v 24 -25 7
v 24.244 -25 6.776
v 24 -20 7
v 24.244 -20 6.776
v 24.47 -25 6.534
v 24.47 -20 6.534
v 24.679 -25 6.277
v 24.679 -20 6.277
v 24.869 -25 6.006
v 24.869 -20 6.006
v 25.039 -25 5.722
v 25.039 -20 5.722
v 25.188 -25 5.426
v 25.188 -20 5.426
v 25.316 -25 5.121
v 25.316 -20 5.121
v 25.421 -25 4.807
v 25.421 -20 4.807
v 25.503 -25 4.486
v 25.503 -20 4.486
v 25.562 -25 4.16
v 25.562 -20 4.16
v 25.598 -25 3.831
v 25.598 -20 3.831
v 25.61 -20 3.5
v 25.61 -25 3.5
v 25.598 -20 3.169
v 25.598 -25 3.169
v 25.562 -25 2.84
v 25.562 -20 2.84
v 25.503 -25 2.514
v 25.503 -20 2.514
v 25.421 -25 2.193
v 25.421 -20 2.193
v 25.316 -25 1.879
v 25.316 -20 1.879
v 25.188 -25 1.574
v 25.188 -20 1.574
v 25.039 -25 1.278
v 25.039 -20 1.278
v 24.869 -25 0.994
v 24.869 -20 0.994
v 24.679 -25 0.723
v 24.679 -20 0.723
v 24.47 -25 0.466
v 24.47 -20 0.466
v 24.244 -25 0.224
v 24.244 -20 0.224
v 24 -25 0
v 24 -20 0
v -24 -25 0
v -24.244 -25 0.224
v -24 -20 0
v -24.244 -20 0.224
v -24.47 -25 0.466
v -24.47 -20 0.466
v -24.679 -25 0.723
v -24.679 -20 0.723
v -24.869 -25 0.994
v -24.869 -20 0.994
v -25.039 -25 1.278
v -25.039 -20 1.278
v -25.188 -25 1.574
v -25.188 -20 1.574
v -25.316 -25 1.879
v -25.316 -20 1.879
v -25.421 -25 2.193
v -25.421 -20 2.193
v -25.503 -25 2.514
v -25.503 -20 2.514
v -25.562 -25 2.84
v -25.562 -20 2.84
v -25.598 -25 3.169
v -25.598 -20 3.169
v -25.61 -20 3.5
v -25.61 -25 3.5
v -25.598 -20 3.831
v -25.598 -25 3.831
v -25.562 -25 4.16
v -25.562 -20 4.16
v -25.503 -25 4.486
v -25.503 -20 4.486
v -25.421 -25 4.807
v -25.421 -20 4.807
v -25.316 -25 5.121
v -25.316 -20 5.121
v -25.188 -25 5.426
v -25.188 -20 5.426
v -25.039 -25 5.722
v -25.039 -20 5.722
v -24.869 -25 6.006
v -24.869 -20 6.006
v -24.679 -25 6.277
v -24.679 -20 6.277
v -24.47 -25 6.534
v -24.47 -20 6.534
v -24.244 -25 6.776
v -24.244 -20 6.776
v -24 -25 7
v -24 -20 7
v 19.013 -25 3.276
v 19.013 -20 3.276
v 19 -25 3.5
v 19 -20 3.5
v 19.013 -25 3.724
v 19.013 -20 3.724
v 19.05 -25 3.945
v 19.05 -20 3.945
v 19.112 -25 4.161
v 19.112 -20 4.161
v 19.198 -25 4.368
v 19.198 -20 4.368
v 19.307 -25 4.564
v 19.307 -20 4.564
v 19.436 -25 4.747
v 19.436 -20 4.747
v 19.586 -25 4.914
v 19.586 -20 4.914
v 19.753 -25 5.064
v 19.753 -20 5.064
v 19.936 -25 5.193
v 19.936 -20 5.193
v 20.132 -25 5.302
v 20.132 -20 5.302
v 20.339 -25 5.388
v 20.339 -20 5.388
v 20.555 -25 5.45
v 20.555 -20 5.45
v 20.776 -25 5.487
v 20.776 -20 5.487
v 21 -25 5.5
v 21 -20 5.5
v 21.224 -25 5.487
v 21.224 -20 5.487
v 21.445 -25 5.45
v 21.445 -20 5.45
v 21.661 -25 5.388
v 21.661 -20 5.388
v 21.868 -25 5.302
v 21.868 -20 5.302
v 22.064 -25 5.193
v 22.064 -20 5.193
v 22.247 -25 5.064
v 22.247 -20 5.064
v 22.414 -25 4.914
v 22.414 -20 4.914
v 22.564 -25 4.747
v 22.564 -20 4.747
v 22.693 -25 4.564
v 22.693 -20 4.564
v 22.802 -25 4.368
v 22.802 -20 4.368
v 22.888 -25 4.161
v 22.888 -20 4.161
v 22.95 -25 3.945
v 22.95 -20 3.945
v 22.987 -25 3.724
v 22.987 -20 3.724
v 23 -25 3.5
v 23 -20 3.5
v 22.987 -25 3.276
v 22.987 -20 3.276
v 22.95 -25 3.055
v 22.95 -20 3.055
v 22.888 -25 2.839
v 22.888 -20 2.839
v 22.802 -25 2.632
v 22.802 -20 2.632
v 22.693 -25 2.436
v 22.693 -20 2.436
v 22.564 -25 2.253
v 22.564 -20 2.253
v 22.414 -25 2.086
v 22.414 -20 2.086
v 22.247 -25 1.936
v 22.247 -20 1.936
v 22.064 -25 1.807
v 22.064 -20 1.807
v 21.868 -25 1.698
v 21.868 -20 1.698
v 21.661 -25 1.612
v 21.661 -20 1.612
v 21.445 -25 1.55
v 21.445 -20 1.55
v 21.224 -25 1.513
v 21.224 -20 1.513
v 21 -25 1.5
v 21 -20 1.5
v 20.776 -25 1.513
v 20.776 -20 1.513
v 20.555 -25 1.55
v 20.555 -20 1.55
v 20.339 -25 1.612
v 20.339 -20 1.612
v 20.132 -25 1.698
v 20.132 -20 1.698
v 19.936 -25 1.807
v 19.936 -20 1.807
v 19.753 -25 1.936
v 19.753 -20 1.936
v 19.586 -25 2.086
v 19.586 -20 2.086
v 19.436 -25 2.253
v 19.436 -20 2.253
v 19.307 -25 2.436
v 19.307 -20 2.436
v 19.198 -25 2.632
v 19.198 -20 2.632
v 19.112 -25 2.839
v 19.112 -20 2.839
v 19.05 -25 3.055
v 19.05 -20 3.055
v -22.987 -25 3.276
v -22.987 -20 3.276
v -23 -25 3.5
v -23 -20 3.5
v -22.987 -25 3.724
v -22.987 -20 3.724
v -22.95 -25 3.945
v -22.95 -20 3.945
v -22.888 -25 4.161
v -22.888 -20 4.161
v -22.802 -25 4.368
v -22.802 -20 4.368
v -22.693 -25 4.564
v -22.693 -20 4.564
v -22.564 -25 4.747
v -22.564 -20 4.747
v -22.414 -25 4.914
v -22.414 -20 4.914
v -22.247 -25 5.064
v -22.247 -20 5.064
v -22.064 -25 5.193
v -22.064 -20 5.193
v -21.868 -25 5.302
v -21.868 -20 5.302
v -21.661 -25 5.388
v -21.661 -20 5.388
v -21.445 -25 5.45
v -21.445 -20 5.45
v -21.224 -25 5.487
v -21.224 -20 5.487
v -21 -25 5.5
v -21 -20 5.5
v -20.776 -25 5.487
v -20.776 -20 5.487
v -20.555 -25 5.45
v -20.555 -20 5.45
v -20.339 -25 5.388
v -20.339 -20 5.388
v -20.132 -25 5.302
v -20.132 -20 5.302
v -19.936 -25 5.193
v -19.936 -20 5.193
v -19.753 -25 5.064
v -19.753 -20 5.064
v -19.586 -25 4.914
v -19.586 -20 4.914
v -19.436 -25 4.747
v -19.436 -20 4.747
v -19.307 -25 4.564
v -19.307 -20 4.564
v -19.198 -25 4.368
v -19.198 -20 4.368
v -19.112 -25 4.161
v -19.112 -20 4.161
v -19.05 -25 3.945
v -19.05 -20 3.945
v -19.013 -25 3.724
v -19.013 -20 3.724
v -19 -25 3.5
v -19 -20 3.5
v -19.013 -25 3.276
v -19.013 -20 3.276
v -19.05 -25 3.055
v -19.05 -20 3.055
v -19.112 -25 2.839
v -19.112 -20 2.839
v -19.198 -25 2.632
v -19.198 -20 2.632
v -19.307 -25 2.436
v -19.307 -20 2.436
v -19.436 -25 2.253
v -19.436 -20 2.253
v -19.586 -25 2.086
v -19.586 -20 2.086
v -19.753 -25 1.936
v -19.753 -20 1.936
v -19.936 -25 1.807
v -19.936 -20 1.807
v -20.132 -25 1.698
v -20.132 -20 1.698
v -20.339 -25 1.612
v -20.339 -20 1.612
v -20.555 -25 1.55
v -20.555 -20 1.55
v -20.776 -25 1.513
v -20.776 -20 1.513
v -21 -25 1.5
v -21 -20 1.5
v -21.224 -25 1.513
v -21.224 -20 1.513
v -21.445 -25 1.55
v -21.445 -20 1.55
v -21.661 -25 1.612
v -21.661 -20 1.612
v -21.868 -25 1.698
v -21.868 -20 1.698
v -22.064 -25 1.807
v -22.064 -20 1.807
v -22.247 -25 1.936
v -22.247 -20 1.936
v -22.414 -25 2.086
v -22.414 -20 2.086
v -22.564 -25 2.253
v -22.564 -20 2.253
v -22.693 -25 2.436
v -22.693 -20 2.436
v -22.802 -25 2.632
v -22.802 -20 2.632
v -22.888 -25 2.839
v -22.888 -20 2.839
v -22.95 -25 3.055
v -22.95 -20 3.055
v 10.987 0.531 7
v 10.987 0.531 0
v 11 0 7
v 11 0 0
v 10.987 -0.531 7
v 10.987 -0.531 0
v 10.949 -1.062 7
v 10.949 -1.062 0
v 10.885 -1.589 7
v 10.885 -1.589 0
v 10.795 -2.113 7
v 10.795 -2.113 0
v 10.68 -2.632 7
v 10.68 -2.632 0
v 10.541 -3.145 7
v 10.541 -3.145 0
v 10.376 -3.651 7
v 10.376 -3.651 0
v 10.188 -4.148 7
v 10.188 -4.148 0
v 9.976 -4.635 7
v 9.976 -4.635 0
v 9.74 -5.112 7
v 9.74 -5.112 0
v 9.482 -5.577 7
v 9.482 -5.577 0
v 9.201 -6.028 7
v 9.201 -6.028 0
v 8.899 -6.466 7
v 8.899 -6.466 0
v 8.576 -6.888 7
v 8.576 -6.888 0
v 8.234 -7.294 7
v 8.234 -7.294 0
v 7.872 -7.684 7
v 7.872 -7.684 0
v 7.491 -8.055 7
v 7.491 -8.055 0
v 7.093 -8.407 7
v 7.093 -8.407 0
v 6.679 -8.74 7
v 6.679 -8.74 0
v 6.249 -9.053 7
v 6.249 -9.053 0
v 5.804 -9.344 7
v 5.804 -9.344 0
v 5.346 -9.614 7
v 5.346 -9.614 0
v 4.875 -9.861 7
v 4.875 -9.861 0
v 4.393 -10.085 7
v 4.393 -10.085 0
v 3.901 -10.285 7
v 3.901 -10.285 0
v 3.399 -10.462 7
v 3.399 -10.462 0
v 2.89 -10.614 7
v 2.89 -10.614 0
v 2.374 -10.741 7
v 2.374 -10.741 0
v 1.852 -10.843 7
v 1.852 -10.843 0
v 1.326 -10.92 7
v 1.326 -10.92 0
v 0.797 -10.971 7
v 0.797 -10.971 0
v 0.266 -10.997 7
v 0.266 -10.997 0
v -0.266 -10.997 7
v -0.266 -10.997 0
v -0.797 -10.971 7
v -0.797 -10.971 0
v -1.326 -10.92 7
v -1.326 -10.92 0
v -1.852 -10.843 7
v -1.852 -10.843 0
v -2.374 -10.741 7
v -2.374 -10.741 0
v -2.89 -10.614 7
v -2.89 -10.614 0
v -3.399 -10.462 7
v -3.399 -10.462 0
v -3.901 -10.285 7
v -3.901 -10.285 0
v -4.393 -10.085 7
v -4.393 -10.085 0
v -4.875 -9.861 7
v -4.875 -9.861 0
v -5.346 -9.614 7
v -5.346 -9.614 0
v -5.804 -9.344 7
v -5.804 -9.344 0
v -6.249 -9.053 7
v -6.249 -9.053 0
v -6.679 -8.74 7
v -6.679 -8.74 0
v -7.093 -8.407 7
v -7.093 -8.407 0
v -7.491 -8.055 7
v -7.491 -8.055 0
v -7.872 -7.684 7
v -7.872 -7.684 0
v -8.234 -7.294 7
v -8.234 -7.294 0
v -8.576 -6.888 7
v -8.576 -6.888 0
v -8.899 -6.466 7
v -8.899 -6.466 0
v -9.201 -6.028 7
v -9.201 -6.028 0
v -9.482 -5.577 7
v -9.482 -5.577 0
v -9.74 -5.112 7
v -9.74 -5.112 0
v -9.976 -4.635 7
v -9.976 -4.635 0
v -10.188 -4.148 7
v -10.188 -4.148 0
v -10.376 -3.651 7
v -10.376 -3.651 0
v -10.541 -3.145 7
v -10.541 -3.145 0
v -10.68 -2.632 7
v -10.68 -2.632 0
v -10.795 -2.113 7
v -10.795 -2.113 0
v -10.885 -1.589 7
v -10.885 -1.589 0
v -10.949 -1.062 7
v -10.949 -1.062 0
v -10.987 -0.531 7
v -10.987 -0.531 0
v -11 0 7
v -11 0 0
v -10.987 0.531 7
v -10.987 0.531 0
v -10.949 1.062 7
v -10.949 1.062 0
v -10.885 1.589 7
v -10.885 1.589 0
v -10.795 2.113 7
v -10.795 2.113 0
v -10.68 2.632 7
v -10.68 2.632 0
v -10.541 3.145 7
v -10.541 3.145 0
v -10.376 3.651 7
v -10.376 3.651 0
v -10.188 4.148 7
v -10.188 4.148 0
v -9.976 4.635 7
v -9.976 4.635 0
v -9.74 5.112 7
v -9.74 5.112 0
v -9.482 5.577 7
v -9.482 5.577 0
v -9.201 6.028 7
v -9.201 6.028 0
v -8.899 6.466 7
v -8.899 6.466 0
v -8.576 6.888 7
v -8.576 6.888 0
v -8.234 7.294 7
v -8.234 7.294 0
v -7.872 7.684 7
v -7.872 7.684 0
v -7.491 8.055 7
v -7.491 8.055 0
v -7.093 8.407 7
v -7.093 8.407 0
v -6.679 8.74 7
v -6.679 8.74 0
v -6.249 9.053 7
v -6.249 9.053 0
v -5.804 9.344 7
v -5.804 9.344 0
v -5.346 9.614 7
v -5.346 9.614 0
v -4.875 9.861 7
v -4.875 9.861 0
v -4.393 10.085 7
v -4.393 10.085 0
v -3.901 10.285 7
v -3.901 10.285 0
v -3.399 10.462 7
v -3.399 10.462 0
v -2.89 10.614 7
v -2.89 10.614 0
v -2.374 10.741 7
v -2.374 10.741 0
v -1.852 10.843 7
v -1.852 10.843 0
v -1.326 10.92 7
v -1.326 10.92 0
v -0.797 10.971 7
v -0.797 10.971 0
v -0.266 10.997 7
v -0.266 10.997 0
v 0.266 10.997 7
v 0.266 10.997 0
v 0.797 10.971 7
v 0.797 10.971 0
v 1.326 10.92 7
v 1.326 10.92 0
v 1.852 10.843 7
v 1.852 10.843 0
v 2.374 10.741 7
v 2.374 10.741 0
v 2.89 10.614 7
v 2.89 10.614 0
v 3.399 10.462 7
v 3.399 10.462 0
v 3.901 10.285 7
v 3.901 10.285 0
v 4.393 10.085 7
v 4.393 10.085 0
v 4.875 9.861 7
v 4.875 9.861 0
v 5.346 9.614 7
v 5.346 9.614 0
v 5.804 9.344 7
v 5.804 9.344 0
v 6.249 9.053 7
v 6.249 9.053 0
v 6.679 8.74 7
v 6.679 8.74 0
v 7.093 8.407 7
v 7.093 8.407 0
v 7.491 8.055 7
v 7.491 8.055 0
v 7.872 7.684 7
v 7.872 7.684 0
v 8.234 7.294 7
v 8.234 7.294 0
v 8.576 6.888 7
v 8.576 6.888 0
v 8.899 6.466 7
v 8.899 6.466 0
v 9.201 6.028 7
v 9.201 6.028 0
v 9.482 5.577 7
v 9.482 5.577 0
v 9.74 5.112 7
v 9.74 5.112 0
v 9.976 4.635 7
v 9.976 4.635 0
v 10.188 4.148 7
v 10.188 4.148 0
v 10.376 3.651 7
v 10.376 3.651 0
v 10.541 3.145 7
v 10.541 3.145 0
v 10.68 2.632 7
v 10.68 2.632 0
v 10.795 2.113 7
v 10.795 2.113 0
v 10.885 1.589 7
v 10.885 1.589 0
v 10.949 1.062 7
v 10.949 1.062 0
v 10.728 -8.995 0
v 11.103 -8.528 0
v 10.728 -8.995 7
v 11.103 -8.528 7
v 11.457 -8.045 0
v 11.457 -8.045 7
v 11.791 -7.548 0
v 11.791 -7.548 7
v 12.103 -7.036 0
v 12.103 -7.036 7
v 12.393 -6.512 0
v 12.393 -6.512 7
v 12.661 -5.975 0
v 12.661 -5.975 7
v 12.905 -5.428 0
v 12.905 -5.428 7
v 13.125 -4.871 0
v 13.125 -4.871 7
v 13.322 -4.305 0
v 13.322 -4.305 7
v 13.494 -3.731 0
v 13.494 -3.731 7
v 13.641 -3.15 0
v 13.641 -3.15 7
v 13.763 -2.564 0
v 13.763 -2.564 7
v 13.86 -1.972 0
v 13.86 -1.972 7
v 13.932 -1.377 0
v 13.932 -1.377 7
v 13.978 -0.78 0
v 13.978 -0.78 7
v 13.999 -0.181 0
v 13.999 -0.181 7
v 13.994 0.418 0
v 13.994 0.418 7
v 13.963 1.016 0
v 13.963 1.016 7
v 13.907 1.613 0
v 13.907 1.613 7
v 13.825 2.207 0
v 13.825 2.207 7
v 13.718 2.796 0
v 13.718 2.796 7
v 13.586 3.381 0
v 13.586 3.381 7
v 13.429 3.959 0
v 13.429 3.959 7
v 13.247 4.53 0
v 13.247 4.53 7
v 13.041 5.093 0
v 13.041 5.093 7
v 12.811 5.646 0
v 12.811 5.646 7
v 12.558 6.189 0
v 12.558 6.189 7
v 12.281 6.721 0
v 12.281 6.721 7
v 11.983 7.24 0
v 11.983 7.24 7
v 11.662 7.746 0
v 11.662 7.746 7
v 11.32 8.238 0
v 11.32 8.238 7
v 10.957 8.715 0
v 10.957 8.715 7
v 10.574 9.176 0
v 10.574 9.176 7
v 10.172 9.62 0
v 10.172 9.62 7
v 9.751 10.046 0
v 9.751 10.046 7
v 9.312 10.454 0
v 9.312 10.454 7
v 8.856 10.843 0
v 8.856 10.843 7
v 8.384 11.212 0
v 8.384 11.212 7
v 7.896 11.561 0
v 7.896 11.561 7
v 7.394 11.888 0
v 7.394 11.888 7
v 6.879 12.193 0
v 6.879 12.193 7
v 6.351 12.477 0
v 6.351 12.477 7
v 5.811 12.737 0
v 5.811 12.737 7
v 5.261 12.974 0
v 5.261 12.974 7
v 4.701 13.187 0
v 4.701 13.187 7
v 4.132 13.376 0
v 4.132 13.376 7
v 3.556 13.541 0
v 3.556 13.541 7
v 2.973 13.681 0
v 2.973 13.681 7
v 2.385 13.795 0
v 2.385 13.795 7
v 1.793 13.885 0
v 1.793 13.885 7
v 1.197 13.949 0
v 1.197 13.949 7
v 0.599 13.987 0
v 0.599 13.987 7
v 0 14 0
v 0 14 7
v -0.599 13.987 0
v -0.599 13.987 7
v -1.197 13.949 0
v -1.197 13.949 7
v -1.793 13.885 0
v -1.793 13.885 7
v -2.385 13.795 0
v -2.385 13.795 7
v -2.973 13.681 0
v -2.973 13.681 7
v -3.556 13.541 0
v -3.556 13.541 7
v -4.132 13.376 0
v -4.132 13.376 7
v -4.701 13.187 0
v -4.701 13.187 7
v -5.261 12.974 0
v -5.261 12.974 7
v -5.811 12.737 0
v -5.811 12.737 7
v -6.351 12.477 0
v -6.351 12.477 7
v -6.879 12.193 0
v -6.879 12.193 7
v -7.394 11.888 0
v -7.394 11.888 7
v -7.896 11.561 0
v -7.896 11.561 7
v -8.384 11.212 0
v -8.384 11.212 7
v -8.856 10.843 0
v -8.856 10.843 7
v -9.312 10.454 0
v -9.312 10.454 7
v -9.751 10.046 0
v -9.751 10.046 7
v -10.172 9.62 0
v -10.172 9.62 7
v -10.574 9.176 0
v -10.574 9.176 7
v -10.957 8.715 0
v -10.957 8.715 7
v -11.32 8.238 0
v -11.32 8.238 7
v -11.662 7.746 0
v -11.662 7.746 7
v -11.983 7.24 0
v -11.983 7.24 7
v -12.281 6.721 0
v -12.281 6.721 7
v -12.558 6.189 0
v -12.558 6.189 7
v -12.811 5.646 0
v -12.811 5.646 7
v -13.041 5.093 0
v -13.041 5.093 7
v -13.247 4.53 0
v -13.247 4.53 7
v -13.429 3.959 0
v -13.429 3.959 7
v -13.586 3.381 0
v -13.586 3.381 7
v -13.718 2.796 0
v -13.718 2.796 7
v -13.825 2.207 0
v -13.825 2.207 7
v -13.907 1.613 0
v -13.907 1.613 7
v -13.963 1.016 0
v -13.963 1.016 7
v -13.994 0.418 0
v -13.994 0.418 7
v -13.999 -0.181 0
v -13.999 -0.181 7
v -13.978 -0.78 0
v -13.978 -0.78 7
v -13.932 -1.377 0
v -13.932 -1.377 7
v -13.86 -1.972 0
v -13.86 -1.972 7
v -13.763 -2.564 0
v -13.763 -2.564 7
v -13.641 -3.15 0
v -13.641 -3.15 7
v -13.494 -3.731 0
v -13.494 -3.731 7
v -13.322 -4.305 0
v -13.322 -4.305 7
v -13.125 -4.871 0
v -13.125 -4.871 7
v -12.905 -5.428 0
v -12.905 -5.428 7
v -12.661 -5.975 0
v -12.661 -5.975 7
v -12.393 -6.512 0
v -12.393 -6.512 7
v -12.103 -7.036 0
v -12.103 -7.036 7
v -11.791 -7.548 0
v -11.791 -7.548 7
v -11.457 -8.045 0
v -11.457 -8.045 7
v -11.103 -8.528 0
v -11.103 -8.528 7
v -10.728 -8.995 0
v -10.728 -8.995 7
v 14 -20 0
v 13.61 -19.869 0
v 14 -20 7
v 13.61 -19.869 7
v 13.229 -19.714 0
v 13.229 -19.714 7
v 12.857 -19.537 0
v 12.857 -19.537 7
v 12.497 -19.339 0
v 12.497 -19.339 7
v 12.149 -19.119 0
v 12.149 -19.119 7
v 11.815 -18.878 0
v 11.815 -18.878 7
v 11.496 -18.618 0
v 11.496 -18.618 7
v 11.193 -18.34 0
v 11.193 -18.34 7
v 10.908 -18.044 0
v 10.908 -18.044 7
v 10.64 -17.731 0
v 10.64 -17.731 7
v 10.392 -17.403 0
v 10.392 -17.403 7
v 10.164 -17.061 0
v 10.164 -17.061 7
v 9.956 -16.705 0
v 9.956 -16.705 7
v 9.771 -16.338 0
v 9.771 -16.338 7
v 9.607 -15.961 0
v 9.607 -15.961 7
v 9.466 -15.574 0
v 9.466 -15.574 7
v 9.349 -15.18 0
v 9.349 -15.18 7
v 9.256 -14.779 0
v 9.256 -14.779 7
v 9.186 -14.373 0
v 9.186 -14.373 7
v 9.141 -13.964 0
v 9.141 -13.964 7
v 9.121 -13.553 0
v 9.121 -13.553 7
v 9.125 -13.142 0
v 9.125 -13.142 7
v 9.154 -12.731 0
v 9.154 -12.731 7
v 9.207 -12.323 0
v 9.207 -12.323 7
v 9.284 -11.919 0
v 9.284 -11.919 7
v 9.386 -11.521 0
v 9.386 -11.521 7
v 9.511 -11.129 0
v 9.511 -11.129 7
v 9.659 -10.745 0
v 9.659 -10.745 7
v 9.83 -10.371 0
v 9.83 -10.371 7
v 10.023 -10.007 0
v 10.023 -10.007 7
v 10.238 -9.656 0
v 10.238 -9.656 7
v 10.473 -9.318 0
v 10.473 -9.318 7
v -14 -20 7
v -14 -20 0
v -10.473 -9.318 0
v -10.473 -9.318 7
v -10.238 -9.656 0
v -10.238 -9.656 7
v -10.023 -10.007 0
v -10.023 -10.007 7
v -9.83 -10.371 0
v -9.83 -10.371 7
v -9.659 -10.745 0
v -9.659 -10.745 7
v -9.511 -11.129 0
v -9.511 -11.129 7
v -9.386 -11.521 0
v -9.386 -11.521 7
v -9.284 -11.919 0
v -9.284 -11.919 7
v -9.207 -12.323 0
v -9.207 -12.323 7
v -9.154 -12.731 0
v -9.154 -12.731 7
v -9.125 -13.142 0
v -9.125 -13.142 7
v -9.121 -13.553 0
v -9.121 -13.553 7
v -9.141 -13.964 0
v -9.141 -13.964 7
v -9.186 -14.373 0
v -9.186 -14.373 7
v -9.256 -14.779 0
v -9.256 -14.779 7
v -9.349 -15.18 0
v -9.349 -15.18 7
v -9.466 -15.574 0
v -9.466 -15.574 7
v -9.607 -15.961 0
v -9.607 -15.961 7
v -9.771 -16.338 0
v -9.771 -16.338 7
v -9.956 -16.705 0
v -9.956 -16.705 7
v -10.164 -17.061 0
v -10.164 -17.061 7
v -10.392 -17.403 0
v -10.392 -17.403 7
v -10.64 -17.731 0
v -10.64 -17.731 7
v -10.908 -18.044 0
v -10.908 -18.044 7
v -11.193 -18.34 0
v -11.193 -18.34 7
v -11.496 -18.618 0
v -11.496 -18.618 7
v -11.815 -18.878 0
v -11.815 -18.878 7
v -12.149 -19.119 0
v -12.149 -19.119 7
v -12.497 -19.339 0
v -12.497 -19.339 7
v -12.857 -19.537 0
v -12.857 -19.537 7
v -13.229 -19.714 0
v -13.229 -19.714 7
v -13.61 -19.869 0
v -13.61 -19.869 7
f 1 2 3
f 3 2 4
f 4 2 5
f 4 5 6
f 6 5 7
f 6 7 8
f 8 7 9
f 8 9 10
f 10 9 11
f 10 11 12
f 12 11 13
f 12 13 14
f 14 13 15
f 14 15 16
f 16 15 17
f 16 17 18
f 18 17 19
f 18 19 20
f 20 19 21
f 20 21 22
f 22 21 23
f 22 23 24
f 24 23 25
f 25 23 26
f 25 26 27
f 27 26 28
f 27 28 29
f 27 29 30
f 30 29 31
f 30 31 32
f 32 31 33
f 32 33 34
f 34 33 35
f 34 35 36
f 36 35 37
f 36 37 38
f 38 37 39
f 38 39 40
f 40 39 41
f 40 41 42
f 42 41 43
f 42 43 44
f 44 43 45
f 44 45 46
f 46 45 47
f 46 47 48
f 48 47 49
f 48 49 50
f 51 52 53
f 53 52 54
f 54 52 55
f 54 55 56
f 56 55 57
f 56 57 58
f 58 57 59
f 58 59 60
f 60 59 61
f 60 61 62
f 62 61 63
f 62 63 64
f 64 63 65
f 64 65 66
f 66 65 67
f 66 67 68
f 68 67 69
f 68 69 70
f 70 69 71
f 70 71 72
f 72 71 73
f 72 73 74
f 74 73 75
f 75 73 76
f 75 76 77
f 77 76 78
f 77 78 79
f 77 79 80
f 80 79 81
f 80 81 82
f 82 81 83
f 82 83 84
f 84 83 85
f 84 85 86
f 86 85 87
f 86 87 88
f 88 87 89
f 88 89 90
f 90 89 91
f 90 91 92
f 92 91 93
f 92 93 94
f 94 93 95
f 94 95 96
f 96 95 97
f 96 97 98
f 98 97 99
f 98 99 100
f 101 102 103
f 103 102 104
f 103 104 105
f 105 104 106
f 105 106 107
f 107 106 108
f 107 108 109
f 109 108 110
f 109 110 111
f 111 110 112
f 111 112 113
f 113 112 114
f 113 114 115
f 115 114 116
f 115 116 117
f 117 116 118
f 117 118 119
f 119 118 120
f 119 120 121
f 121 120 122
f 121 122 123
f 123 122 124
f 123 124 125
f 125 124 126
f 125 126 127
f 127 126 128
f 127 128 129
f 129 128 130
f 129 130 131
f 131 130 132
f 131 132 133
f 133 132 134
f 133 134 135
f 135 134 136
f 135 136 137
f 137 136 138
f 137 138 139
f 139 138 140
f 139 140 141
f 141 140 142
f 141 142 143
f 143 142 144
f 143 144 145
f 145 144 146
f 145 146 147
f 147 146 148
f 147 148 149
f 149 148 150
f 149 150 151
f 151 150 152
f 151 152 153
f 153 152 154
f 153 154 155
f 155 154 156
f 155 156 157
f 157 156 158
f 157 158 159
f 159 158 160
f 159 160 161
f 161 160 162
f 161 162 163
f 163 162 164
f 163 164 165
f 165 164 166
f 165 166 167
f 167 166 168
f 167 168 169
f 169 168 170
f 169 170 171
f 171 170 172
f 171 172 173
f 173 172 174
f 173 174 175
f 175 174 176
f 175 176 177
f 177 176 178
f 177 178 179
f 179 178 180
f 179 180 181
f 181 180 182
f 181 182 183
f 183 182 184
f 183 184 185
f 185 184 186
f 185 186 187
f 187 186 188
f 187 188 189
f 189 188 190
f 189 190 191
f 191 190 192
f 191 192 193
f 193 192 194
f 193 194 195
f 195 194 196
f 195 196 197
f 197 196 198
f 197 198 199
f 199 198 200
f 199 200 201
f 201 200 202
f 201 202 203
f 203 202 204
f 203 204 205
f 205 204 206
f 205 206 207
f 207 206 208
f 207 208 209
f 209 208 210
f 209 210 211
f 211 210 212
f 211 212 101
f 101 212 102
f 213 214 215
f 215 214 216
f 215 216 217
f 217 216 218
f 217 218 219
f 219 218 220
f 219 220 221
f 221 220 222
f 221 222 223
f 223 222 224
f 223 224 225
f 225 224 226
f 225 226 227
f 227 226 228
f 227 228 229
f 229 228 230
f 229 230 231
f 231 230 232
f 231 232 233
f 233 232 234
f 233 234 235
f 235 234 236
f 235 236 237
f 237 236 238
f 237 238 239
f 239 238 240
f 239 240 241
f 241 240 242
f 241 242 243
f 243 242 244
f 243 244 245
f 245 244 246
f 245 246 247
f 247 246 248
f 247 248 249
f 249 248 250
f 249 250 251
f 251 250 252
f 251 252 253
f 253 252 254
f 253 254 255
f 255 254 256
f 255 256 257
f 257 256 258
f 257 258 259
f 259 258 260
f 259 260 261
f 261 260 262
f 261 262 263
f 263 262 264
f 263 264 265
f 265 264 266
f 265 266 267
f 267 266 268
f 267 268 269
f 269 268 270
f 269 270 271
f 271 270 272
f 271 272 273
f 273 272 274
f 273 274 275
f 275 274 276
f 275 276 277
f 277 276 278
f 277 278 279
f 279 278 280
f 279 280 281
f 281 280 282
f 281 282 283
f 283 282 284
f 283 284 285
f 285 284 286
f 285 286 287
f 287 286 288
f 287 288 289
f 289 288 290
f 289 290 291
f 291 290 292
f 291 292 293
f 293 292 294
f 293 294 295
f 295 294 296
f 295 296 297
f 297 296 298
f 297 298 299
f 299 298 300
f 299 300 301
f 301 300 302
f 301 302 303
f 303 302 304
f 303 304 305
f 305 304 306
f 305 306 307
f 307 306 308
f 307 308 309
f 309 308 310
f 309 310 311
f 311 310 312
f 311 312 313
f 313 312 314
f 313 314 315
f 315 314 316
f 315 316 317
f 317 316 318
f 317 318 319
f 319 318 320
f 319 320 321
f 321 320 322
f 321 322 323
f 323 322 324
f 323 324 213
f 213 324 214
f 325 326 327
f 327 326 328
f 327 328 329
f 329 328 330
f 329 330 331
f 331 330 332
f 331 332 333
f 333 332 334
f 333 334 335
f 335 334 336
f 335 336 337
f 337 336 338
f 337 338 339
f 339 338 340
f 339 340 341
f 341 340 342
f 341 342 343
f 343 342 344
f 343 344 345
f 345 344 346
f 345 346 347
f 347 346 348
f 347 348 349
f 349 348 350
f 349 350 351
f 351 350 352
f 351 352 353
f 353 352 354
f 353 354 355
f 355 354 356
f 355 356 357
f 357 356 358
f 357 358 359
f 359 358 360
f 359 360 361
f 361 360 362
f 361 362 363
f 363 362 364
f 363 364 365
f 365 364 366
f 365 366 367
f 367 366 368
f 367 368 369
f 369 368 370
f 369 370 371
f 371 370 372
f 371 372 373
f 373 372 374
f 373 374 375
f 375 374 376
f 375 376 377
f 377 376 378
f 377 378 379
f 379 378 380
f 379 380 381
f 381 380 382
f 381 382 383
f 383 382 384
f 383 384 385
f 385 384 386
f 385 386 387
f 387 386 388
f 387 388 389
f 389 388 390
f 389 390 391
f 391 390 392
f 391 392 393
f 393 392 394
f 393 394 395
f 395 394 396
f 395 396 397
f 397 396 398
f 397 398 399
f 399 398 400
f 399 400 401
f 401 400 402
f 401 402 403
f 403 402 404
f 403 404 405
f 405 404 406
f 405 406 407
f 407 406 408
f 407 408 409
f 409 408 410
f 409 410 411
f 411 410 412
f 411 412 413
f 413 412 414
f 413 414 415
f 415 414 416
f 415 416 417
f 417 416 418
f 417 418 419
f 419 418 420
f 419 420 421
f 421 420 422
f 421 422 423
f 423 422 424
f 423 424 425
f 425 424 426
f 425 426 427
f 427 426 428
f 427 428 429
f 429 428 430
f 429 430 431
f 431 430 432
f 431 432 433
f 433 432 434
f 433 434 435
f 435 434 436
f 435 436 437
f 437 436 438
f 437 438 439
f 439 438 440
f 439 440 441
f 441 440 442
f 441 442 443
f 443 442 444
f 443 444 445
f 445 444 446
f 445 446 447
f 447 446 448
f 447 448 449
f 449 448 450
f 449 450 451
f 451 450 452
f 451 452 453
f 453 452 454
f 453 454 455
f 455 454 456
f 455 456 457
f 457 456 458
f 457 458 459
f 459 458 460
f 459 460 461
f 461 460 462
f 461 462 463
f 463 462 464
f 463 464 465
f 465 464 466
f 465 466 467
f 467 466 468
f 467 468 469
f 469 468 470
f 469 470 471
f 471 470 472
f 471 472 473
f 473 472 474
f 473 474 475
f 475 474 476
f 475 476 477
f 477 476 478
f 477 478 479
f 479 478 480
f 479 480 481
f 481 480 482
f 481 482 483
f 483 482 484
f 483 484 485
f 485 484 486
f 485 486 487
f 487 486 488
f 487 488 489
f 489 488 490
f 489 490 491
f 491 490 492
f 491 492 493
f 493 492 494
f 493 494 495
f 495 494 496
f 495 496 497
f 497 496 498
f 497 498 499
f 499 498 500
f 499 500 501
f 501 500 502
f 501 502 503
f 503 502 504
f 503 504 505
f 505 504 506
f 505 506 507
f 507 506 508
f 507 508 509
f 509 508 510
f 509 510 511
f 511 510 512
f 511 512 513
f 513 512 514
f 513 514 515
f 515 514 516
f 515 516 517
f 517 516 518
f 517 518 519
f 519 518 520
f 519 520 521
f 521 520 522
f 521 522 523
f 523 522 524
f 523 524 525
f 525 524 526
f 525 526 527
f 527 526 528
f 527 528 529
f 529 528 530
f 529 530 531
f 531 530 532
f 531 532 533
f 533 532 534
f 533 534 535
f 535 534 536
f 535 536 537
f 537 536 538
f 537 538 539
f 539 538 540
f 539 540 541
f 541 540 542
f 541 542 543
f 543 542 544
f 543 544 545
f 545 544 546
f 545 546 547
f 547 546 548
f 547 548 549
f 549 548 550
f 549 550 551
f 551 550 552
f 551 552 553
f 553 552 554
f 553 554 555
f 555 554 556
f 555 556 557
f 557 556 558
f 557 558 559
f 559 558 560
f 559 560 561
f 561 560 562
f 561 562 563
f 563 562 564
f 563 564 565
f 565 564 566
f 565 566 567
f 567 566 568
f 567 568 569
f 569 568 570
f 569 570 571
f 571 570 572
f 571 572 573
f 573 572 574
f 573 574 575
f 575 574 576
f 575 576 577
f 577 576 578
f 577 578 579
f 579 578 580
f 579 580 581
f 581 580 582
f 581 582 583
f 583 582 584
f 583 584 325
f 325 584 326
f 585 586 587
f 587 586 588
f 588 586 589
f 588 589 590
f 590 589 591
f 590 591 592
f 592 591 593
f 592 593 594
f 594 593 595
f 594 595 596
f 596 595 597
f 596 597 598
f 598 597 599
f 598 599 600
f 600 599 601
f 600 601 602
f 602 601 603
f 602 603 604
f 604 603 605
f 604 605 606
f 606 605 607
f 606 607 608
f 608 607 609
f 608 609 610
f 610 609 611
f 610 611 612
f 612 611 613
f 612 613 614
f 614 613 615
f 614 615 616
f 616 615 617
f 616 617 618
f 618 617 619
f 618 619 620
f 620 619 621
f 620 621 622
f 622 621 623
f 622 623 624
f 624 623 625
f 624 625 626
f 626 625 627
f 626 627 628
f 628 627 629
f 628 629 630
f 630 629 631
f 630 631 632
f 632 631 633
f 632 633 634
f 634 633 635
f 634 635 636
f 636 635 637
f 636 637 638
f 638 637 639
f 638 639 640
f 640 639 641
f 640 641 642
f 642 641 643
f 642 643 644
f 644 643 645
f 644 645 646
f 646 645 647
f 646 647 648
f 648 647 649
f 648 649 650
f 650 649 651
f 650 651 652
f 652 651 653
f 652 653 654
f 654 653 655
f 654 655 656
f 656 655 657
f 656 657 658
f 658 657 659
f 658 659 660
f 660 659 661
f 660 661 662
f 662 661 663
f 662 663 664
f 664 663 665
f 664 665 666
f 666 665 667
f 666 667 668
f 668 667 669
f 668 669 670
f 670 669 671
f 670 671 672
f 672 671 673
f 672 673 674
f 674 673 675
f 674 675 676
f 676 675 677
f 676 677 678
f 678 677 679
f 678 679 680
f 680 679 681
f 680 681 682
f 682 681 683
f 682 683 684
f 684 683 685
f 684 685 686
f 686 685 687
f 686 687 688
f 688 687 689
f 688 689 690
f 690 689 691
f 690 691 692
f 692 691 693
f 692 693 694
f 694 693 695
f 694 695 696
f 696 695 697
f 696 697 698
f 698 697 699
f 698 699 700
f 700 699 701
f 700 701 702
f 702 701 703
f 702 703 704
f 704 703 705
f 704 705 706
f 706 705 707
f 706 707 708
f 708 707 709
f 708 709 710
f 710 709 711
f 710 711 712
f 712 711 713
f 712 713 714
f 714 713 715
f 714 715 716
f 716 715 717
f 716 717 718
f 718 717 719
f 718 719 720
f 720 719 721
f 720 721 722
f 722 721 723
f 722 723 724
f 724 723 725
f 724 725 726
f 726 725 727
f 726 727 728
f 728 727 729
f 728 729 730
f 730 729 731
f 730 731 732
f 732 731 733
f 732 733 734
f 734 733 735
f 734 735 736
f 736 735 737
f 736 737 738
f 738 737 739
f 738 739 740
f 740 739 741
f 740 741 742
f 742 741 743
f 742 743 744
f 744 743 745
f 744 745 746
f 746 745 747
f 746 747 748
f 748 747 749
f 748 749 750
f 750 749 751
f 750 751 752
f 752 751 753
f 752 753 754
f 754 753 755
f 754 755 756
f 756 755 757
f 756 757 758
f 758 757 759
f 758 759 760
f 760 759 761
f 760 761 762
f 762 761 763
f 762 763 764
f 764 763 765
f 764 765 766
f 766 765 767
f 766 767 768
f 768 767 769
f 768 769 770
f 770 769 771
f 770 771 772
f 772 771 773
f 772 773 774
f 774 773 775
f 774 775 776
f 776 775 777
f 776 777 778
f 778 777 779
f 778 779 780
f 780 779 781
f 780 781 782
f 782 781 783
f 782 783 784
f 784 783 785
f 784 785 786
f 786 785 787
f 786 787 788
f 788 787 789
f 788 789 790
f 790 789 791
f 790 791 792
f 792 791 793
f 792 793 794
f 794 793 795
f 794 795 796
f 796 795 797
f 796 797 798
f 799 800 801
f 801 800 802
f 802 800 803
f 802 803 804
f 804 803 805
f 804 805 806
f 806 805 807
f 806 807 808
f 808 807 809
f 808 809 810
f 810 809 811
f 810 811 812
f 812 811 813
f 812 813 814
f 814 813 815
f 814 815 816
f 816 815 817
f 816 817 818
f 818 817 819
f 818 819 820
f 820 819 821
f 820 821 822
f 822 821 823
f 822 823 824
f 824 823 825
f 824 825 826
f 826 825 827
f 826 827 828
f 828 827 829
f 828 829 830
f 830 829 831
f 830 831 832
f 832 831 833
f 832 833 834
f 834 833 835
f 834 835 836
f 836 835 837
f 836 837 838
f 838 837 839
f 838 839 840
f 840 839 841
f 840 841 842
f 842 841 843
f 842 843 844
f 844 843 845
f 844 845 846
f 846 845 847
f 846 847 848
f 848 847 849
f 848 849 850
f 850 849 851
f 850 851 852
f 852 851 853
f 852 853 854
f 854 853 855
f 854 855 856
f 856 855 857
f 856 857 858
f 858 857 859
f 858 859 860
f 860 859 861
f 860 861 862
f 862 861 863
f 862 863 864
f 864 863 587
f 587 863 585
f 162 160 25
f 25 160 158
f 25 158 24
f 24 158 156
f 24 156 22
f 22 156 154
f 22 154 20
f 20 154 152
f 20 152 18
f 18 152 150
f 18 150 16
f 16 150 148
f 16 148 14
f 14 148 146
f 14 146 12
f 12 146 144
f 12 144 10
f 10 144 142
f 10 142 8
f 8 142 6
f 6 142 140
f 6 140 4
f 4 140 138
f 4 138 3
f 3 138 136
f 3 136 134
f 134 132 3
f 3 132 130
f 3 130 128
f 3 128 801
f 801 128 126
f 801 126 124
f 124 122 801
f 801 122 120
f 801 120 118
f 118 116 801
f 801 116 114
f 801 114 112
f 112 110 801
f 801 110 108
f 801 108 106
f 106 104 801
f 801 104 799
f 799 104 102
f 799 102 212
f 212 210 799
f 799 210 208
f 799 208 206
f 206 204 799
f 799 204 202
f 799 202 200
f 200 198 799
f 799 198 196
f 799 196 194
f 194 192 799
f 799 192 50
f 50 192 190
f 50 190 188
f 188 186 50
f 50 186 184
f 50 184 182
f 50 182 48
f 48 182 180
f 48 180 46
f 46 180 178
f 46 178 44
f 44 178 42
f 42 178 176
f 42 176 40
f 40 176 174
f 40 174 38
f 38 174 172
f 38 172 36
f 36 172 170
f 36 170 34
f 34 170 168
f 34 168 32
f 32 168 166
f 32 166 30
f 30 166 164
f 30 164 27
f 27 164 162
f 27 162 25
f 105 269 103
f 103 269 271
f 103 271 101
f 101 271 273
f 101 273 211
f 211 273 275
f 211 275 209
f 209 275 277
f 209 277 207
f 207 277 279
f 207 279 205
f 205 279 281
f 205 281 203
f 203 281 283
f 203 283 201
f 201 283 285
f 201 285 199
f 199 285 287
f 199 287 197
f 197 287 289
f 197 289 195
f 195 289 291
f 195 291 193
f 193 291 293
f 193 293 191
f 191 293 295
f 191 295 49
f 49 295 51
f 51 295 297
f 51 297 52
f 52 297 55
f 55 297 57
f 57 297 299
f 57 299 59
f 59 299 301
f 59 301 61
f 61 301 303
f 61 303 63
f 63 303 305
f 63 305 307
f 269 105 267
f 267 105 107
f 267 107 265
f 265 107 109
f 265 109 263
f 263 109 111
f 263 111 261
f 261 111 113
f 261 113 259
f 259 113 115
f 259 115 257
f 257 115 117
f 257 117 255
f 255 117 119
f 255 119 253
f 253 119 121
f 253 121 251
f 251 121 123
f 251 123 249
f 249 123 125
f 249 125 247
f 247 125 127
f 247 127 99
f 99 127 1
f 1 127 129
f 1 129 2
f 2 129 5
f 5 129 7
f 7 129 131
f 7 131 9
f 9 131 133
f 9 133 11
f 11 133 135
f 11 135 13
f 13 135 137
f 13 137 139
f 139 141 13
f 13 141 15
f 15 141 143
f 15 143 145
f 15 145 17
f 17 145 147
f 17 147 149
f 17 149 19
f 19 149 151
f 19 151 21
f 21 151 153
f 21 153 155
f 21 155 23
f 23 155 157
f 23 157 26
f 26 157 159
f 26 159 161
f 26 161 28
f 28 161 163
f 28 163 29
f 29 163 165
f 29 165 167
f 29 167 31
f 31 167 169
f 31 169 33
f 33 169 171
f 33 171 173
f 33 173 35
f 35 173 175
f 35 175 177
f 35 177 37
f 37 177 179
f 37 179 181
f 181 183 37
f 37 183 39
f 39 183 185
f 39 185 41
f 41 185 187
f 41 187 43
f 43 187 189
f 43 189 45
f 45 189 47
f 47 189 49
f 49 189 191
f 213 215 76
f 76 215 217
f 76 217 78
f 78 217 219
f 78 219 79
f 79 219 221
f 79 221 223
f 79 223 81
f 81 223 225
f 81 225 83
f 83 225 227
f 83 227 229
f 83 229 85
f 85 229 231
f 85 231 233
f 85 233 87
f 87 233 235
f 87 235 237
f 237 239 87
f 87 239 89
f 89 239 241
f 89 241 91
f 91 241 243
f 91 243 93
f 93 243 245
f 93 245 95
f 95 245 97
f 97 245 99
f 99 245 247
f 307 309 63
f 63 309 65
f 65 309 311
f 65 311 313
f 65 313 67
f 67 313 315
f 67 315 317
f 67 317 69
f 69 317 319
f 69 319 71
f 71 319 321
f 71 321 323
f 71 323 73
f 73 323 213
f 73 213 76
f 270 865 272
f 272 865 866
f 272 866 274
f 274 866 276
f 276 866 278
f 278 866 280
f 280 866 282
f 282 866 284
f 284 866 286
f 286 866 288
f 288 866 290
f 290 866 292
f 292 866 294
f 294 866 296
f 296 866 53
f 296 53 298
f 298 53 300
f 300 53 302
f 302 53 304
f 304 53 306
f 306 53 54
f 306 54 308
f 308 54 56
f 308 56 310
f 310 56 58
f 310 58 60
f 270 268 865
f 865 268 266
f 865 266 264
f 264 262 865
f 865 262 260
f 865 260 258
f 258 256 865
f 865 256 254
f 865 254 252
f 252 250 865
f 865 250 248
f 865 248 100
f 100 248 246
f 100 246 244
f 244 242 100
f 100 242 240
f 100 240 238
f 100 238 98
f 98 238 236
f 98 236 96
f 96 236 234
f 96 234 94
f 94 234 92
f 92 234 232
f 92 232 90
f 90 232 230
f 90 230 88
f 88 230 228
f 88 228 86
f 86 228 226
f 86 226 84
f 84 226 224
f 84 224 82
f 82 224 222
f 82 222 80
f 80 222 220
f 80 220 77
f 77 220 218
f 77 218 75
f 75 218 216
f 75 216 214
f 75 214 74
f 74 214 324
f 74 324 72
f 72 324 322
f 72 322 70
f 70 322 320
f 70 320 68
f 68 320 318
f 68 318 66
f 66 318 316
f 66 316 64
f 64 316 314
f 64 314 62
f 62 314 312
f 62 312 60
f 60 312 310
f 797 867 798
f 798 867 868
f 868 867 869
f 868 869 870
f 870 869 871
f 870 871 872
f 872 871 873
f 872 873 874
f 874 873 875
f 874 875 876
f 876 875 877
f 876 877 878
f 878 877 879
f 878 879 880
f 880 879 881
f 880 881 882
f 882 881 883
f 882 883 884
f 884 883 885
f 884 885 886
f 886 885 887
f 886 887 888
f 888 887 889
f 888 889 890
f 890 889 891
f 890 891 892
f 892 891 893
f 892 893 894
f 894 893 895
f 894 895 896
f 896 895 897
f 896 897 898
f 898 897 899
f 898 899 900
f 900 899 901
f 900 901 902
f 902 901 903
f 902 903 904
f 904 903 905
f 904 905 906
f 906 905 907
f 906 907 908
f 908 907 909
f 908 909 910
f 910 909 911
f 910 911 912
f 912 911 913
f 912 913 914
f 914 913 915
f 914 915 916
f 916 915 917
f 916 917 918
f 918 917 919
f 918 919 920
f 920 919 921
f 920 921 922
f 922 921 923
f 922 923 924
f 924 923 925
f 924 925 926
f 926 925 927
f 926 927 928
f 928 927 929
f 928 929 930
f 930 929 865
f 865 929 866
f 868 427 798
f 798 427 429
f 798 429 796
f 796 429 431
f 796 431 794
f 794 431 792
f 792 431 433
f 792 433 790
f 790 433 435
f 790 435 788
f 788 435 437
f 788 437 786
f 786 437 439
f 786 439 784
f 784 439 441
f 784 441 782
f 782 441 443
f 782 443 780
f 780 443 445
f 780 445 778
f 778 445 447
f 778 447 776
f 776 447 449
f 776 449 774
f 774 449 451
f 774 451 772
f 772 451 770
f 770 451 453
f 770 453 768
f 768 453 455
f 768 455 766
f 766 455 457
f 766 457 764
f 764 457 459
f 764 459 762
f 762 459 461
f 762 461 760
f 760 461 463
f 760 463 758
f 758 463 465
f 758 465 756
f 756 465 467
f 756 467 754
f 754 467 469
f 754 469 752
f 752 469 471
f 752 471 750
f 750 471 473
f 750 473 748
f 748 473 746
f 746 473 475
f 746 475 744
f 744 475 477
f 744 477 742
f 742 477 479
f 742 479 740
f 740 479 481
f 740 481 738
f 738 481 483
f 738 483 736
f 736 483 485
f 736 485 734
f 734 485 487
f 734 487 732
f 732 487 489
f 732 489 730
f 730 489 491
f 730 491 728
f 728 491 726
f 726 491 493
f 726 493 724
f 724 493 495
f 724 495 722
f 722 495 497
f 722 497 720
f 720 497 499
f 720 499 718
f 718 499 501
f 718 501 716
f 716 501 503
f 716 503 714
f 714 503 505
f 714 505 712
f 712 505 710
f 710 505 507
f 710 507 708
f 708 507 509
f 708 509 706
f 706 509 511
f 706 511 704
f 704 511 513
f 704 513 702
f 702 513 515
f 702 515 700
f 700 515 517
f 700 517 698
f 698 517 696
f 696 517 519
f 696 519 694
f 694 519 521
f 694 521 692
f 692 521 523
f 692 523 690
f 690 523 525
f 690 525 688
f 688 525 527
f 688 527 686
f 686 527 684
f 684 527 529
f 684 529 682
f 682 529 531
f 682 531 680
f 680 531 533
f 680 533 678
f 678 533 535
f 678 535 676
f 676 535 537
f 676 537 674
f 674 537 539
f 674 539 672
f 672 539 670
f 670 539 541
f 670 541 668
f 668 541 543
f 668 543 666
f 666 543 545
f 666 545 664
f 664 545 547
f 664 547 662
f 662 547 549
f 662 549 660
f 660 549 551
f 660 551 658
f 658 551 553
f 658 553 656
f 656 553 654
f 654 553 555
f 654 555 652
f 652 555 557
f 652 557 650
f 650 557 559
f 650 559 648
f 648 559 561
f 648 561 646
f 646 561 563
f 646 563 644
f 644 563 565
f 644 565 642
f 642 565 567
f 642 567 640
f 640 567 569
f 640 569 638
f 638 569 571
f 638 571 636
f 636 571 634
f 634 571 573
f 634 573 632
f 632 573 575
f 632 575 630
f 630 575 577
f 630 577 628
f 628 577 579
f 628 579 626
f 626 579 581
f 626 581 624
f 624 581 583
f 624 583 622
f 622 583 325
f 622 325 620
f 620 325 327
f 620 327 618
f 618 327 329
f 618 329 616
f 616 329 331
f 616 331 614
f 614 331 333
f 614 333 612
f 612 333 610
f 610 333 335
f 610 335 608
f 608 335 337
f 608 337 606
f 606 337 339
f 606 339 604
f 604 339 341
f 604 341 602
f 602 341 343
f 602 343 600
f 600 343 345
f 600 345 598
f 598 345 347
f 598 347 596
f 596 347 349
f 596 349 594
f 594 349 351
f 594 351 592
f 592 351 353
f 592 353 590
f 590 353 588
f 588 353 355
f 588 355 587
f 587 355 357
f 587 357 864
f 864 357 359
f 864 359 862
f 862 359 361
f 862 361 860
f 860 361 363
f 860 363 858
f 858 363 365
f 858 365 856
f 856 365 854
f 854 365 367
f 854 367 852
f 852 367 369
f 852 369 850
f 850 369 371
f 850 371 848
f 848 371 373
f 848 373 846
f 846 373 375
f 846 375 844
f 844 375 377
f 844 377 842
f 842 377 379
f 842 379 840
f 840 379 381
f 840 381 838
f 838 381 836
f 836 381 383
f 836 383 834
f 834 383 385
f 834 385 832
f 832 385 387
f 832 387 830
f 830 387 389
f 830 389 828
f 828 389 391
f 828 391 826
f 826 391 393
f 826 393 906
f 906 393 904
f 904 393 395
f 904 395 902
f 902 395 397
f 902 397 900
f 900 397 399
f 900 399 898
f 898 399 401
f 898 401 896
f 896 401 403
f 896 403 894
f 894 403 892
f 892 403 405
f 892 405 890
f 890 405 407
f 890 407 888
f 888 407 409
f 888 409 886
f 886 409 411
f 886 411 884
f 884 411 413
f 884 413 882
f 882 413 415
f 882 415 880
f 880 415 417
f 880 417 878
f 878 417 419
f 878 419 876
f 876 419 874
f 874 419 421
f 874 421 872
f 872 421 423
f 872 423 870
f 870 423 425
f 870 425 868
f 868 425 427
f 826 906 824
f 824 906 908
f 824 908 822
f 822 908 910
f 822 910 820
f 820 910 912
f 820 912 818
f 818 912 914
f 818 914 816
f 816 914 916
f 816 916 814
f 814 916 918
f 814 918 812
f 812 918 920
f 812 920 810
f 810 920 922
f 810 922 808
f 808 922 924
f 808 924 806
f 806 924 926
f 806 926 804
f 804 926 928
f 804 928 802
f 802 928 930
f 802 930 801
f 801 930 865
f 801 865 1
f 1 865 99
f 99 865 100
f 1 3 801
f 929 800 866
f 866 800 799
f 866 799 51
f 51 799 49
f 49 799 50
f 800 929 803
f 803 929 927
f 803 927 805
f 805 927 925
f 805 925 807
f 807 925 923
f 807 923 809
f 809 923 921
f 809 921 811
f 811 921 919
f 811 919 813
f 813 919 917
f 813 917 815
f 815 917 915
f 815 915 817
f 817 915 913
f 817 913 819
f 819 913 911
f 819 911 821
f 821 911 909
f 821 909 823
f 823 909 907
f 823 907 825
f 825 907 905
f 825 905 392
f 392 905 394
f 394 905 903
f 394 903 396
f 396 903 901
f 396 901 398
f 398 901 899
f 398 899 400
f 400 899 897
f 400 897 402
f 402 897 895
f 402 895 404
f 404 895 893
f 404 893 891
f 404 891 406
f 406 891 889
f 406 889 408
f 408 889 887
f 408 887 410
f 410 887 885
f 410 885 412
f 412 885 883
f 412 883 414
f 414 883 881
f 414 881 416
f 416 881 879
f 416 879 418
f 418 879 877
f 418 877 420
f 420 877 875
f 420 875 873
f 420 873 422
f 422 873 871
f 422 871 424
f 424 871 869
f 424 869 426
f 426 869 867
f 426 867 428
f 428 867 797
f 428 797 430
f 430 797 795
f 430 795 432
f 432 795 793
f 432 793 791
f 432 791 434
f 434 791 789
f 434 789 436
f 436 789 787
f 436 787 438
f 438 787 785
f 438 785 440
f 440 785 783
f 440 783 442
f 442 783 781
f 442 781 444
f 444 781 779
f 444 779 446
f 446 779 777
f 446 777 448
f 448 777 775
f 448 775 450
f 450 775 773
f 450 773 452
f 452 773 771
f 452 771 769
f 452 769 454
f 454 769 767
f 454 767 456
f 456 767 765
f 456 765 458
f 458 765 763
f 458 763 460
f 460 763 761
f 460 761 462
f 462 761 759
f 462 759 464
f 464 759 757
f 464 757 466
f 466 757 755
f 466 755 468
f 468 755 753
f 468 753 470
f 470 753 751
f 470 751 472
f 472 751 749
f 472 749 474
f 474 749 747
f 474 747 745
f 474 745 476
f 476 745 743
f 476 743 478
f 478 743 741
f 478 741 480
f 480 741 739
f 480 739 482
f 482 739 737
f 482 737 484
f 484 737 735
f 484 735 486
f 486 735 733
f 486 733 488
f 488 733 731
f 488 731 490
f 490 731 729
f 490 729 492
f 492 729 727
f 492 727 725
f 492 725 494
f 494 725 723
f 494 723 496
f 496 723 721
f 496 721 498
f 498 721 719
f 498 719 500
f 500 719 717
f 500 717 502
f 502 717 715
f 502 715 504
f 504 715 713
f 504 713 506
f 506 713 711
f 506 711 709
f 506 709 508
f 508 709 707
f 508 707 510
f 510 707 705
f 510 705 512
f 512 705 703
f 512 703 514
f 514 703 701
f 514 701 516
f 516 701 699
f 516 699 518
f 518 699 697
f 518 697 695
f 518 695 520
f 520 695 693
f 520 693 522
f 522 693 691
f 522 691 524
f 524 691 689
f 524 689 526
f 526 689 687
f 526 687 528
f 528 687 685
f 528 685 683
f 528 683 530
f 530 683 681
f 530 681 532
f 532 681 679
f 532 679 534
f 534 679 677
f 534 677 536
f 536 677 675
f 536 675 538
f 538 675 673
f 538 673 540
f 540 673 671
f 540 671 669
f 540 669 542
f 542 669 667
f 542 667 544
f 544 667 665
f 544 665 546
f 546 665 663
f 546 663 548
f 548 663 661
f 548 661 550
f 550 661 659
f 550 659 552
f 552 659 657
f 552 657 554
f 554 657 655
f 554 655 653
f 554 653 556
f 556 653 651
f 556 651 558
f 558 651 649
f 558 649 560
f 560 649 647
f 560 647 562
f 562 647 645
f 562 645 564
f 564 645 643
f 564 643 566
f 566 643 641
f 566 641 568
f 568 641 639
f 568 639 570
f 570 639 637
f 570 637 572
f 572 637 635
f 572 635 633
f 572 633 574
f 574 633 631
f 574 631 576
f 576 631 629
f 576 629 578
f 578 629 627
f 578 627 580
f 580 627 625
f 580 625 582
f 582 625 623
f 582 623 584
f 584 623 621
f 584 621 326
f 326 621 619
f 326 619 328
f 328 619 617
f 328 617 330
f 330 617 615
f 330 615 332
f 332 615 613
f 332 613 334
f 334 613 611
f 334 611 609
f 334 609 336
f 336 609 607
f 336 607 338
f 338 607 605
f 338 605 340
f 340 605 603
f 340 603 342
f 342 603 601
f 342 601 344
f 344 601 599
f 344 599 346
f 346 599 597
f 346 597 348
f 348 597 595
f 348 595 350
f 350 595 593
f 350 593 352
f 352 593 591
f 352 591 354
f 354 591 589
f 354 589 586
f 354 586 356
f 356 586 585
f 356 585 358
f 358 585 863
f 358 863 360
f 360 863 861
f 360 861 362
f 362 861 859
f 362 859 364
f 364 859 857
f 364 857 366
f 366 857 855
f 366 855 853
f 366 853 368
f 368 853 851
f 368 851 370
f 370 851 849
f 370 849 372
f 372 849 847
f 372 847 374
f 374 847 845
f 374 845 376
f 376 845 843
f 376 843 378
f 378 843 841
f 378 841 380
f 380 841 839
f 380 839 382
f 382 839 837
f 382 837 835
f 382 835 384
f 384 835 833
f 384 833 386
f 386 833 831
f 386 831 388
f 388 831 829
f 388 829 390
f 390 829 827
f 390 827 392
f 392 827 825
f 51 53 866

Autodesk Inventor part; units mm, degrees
ref_plane "YZ Plane" through (0, 0, 0) normal (1, 0, 0) x (0, 1, 0)
ref_plane "XZ Plane" through (0, 0, 0) normal (0, 1, 0) x (-1, 0, 0)
ref_plane "XY Plane" through (0, 0, 0) normal (0, 0, 1) x (1, 0, 0)
sketch "Sketch1" plane through (0, 0, 0) normal (0, 0, 1) x (1, 0, 0)
  circle A0 centre (0, 0) radius 4
  circle A1 centre (0, 0) radius 11
  line L0 (-25.9378, -1.7681) -> (-27.6396, -2.8187) projected
  line L1 (-27.6396, -2.8187) -> (-14.9069, -23.4452) projected
  line L2 (-14.9069, -23.4452) -> (-13.205, -22.3947) projected
  line L3 (0, 0) -> (11.913, 7.3539) construction
  circle A2 centre (0, 0) radius 14
  line L4 (-24, -20) -> (24, -20)
  line L5 (24, -20) -> (24, -25)
  line L6 (24, -25) -> (-24, -25)
  line L7 (-24, -25) -> (-24, -20)
  arc A3 (-14, -20) -> (-10.7276, -8.9954) centre (-16, -13.4164) ccw
  line L8 (-14, 0) -> (-14, -25) construction
  line L9 (0, 0) -> (-14, 0) construction
  line L10 (0, 0) -> (14, 0) construction
  line L11 (14, 0) -> (14, -25) construction
  arc A4 (10.7276, -8.9954) -> (14, -20) centre (16, -13.4164) ccw
  dimension "d0" = 8
  dimension "d1" = 22
  dimension "d19" = 3
  dimension "d20" = 25
  dimension "d21" = 5
  dimension "d22" = 2
  dimension "d23" = 2
  dimension "d24" = 10
  dimension "d25" = 10
extrude "Extrusion1" add sketch "Sketch1" along normal blind 7 contours A2 | A2 A4 L4 A3 | L4 L5 L6 L7
sketch "Sketch5" plane through (-24, -20, 0) normal (0, 1, 0) x (1, 0, 0)
  circle A0 centre (3, -3.5) radius 2
  circle A1 centre (45, -3.5) radius 2
  line L0 (3, -3.5) -> (45, -3.5) construction
  line L1 (0, 0) -> (0, -7) projected
  line L2 (48, 0) -> (48, -7) projected
  line L3 (10, 0) -> (0, 0) projected
  circle A2 centre (3, -3.5) radius 4.6098
  line L4 (0, 0) -> (48, 0) projected
  circle A3 centre (45, -3.5) radius 4.6098
  point P0 (24, 0)
  dimension "d26" = 4
  dimension "d27" = 4
  dimension "d28" = 3
  dimension "d29" = 3
  dimension "d30" = 3.5
extrude "Extrusion6" cut sketch "Sketch5" against normal up to surface (5 mm away) contours A0 | A1
extrude "Extrusion7" add sketch "Sketch5" against normal up to surface (5 mm away) contours L1 A2 | A3 L2
equation "\"d0\" = DIR"
equation "\"d1\" = DER"
equation "\"d20\" = HSE"
equation "\"DER\" = 22"
equation "\"HR\" = 7"
equation "\"DIR\" = 8"
equation "\"DEM\" = 4"
equation "\"Dmarc\" = 17.5"
equation "\"Bsm\" = 22.5"
equation "\"Hsm\" = 12"
equation "\"Lsm\" = 21"
equation "\"Dsc\" = 5"
equation "\"RC\" = 6"
equation "\"PB\" = 25"
equation "\"TB\" = 3"
equation "\"HSE\" = 25"
equation "\"LMaSP\" = 46.5"
properties part number "SoportePolea"
